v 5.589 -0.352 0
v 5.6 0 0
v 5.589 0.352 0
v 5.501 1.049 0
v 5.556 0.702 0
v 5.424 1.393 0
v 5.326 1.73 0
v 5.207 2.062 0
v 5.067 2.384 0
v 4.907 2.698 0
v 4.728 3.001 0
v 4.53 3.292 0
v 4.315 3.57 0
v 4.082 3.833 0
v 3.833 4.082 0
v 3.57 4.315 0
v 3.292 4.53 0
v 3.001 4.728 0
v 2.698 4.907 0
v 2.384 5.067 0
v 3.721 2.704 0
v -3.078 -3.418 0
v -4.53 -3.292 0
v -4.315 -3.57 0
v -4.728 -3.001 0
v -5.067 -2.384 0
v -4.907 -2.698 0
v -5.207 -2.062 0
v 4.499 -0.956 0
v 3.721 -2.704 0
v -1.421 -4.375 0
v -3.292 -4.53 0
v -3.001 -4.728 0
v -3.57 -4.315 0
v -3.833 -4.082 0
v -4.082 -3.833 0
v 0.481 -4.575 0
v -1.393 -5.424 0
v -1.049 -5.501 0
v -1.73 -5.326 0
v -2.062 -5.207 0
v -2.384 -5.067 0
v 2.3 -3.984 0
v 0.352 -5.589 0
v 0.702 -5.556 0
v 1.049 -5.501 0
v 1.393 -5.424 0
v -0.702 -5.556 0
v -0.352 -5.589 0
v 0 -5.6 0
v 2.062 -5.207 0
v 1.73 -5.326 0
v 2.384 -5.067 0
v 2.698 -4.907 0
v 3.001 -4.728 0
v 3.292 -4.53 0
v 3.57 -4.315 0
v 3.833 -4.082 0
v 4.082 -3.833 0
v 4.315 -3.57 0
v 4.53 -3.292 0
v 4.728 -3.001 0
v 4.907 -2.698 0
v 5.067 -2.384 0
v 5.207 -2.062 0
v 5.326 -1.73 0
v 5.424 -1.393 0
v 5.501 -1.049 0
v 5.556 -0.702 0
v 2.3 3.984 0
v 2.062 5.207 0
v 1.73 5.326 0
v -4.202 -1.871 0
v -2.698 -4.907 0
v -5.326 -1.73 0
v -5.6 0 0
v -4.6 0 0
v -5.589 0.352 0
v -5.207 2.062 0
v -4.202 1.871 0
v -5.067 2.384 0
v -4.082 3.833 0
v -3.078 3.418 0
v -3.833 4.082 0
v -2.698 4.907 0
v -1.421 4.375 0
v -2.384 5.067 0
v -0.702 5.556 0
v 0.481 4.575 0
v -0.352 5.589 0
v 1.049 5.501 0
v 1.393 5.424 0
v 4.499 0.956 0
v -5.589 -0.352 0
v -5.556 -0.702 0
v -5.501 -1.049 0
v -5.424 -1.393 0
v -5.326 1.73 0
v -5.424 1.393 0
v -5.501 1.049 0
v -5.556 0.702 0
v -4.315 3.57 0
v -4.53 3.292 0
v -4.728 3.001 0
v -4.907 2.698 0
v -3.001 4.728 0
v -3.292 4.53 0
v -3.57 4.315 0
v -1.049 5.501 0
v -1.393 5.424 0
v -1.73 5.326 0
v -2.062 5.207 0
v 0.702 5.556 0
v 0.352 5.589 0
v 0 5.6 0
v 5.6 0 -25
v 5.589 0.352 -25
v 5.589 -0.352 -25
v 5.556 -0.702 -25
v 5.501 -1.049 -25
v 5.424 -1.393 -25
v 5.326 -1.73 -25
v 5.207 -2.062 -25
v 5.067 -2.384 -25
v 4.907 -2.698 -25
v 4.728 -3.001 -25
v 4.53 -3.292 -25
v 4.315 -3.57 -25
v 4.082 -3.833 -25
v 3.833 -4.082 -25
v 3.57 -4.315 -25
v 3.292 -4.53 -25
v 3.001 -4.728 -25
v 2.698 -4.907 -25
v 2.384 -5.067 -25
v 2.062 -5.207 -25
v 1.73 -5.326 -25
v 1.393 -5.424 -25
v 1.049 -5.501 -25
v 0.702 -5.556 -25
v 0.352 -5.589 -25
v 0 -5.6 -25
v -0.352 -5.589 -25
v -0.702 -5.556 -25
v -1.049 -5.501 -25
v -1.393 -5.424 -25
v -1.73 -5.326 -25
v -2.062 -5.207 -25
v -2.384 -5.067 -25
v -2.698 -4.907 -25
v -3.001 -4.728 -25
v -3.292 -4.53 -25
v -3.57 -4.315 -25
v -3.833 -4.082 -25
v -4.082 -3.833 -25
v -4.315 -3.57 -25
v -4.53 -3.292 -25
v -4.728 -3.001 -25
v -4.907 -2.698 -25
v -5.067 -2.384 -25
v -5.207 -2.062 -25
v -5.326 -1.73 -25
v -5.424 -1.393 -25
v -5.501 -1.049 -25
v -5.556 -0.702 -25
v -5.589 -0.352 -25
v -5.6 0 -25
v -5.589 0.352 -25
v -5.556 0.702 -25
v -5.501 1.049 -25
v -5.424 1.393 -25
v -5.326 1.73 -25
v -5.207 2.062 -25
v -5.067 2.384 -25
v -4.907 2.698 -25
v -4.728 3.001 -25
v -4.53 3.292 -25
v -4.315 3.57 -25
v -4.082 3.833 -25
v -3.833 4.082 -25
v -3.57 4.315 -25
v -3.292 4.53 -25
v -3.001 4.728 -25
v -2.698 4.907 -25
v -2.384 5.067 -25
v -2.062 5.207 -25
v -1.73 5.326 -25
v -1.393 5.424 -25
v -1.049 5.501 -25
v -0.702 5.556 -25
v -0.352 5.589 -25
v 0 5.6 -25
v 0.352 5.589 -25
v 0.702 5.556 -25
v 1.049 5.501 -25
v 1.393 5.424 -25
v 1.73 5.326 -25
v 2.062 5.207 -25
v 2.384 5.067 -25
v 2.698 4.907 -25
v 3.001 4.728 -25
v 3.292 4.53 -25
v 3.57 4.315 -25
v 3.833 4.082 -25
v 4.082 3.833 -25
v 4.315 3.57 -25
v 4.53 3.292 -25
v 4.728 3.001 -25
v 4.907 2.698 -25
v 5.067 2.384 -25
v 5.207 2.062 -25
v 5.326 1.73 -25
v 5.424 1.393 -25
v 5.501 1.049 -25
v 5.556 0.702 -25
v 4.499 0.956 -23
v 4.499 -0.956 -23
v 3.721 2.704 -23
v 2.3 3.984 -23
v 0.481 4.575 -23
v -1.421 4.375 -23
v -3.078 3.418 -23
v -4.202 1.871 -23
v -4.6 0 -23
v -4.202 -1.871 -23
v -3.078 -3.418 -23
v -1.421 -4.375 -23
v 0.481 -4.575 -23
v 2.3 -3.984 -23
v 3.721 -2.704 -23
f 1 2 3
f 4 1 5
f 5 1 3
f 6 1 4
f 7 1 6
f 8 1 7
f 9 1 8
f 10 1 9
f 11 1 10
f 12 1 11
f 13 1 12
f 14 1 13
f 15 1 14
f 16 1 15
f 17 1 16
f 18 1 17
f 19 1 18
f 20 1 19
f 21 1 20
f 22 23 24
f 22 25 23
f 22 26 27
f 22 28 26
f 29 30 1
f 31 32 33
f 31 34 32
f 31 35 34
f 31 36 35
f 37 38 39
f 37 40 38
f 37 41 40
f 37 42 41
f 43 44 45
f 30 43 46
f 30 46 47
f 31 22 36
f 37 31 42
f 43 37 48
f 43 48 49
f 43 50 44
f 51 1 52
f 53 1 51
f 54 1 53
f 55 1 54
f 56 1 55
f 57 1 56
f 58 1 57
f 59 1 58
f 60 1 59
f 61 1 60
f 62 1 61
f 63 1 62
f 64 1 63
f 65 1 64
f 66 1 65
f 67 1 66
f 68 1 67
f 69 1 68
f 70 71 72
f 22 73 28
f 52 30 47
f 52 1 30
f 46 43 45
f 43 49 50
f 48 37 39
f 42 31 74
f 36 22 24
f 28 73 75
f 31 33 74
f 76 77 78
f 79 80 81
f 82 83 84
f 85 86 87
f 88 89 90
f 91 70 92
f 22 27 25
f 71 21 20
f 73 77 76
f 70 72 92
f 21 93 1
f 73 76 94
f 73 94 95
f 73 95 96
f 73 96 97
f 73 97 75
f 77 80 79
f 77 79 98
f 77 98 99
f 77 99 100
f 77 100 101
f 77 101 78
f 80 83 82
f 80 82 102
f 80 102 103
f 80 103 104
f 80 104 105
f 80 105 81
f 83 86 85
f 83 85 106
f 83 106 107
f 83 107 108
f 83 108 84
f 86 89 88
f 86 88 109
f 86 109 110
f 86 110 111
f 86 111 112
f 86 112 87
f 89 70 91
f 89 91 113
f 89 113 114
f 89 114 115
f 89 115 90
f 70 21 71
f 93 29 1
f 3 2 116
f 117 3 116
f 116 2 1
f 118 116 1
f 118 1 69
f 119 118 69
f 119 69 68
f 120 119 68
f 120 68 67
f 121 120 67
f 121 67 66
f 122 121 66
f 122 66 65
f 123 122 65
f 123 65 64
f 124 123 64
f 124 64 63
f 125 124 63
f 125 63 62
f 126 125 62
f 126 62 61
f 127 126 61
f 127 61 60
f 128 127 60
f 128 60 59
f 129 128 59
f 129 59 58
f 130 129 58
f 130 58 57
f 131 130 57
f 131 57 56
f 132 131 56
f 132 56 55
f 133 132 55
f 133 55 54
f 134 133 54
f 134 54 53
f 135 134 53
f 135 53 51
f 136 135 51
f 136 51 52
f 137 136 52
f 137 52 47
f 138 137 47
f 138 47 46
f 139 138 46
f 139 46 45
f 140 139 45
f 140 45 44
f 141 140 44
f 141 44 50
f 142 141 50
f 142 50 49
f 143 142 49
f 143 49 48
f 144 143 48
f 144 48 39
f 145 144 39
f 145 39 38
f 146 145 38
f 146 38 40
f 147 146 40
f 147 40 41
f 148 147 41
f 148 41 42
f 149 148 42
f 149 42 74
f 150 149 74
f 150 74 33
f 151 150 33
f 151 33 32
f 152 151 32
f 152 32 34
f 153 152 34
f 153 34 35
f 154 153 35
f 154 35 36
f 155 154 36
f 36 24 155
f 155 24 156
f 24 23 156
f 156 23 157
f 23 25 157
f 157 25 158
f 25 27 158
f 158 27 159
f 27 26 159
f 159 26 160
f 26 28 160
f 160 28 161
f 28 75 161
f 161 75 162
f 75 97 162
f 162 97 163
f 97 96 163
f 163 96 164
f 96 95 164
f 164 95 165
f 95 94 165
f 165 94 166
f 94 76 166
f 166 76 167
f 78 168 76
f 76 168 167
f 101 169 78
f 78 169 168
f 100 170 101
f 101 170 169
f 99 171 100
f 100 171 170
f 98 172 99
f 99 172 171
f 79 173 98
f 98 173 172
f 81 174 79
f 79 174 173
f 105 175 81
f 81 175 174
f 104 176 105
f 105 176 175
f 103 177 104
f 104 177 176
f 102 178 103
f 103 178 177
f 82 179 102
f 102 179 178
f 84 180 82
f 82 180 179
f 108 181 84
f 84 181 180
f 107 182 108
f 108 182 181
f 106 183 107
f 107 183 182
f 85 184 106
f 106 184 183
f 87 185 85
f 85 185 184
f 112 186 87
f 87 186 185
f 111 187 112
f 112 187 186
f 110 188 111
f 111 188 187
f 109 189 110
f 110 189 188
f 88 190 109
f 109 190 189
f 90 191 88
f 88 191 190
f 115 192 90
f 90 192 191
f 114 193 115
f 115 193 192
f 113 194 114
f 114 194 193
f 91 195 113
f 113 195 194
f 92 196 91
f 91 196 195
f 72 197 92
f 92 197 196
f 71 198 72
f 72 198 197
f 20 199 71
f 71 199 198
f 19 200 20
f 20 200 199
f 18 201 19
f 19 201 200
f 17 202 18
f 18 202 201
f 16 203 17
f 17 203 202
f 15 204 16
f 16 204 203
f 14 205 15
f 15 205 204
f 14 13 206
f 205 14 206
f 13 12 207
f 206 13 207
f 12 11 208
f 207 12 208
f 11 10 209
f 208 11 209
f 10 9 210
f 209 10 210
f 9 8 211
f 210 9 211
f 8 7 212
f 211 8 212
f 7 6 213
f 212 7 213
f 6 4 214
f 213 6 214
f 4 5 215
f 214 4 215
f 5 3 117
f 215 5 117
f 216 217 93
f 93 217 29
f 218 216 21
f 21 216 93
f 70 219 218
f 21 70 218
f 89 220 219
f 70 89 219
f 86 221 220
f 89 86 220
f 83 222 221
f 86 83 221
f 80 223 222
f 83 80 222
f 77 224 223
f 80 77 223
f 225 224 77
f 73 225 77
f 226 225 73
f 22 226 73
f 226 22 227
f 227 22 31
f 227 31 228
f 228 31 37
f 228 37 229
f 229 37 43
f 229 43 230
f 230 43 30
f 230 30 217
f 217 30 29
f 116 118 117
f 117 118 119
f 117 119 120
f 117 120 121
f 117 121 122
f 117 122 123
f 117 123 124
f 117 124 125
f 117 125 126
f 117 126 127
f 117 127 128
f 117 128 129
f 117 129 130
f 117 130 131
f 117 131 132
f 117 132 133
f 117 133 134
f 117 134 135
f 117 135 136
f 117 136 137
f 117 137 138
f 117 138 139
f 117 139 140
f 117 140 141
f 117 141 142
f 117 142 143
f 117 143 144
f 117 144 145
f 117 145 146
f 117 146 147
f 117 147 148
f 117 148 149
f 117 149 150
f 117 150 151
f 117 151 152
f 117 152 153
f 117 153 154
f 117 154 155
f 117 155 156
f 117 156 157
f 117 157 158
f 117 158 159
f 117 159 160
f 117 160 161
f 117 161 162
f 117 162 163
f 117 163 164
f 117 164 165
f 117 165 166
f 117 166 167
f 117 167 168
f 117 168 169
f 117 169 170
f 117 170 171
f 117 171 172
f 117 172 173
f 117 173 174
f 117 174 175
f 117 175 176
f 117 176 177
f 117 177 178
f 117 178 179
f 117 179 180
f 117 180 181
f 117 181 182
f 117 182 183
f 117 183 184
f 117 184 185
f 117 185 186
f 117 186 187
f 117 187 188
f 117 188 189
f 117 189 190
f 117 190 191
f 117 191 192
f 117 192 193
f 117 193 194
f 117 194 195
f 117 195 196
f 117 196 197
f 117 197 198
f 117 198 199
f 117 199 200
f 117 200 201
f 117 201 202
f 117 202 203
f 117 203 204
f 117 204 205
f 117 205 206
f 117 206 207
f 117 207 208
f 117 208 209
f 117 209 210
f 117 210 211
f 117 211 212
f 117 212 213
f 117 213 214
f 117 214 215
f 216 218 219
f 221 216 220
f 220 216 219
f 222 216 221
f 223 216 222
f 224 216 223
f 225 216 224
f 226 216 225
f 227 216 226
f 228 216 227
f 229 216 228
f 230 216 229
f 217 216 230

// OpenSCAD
longitud = 25; //mm
radio_ext = 5.6; //mm
ancho = 1;		//mm
tapa= 2;
rotate([0,180,0])
difference(){
	cylinder(r=radio_ext,h=longitud,$fn=100);
	cylinder(r=(radio_ext-ancho),h=(longitud-tapa));

}
